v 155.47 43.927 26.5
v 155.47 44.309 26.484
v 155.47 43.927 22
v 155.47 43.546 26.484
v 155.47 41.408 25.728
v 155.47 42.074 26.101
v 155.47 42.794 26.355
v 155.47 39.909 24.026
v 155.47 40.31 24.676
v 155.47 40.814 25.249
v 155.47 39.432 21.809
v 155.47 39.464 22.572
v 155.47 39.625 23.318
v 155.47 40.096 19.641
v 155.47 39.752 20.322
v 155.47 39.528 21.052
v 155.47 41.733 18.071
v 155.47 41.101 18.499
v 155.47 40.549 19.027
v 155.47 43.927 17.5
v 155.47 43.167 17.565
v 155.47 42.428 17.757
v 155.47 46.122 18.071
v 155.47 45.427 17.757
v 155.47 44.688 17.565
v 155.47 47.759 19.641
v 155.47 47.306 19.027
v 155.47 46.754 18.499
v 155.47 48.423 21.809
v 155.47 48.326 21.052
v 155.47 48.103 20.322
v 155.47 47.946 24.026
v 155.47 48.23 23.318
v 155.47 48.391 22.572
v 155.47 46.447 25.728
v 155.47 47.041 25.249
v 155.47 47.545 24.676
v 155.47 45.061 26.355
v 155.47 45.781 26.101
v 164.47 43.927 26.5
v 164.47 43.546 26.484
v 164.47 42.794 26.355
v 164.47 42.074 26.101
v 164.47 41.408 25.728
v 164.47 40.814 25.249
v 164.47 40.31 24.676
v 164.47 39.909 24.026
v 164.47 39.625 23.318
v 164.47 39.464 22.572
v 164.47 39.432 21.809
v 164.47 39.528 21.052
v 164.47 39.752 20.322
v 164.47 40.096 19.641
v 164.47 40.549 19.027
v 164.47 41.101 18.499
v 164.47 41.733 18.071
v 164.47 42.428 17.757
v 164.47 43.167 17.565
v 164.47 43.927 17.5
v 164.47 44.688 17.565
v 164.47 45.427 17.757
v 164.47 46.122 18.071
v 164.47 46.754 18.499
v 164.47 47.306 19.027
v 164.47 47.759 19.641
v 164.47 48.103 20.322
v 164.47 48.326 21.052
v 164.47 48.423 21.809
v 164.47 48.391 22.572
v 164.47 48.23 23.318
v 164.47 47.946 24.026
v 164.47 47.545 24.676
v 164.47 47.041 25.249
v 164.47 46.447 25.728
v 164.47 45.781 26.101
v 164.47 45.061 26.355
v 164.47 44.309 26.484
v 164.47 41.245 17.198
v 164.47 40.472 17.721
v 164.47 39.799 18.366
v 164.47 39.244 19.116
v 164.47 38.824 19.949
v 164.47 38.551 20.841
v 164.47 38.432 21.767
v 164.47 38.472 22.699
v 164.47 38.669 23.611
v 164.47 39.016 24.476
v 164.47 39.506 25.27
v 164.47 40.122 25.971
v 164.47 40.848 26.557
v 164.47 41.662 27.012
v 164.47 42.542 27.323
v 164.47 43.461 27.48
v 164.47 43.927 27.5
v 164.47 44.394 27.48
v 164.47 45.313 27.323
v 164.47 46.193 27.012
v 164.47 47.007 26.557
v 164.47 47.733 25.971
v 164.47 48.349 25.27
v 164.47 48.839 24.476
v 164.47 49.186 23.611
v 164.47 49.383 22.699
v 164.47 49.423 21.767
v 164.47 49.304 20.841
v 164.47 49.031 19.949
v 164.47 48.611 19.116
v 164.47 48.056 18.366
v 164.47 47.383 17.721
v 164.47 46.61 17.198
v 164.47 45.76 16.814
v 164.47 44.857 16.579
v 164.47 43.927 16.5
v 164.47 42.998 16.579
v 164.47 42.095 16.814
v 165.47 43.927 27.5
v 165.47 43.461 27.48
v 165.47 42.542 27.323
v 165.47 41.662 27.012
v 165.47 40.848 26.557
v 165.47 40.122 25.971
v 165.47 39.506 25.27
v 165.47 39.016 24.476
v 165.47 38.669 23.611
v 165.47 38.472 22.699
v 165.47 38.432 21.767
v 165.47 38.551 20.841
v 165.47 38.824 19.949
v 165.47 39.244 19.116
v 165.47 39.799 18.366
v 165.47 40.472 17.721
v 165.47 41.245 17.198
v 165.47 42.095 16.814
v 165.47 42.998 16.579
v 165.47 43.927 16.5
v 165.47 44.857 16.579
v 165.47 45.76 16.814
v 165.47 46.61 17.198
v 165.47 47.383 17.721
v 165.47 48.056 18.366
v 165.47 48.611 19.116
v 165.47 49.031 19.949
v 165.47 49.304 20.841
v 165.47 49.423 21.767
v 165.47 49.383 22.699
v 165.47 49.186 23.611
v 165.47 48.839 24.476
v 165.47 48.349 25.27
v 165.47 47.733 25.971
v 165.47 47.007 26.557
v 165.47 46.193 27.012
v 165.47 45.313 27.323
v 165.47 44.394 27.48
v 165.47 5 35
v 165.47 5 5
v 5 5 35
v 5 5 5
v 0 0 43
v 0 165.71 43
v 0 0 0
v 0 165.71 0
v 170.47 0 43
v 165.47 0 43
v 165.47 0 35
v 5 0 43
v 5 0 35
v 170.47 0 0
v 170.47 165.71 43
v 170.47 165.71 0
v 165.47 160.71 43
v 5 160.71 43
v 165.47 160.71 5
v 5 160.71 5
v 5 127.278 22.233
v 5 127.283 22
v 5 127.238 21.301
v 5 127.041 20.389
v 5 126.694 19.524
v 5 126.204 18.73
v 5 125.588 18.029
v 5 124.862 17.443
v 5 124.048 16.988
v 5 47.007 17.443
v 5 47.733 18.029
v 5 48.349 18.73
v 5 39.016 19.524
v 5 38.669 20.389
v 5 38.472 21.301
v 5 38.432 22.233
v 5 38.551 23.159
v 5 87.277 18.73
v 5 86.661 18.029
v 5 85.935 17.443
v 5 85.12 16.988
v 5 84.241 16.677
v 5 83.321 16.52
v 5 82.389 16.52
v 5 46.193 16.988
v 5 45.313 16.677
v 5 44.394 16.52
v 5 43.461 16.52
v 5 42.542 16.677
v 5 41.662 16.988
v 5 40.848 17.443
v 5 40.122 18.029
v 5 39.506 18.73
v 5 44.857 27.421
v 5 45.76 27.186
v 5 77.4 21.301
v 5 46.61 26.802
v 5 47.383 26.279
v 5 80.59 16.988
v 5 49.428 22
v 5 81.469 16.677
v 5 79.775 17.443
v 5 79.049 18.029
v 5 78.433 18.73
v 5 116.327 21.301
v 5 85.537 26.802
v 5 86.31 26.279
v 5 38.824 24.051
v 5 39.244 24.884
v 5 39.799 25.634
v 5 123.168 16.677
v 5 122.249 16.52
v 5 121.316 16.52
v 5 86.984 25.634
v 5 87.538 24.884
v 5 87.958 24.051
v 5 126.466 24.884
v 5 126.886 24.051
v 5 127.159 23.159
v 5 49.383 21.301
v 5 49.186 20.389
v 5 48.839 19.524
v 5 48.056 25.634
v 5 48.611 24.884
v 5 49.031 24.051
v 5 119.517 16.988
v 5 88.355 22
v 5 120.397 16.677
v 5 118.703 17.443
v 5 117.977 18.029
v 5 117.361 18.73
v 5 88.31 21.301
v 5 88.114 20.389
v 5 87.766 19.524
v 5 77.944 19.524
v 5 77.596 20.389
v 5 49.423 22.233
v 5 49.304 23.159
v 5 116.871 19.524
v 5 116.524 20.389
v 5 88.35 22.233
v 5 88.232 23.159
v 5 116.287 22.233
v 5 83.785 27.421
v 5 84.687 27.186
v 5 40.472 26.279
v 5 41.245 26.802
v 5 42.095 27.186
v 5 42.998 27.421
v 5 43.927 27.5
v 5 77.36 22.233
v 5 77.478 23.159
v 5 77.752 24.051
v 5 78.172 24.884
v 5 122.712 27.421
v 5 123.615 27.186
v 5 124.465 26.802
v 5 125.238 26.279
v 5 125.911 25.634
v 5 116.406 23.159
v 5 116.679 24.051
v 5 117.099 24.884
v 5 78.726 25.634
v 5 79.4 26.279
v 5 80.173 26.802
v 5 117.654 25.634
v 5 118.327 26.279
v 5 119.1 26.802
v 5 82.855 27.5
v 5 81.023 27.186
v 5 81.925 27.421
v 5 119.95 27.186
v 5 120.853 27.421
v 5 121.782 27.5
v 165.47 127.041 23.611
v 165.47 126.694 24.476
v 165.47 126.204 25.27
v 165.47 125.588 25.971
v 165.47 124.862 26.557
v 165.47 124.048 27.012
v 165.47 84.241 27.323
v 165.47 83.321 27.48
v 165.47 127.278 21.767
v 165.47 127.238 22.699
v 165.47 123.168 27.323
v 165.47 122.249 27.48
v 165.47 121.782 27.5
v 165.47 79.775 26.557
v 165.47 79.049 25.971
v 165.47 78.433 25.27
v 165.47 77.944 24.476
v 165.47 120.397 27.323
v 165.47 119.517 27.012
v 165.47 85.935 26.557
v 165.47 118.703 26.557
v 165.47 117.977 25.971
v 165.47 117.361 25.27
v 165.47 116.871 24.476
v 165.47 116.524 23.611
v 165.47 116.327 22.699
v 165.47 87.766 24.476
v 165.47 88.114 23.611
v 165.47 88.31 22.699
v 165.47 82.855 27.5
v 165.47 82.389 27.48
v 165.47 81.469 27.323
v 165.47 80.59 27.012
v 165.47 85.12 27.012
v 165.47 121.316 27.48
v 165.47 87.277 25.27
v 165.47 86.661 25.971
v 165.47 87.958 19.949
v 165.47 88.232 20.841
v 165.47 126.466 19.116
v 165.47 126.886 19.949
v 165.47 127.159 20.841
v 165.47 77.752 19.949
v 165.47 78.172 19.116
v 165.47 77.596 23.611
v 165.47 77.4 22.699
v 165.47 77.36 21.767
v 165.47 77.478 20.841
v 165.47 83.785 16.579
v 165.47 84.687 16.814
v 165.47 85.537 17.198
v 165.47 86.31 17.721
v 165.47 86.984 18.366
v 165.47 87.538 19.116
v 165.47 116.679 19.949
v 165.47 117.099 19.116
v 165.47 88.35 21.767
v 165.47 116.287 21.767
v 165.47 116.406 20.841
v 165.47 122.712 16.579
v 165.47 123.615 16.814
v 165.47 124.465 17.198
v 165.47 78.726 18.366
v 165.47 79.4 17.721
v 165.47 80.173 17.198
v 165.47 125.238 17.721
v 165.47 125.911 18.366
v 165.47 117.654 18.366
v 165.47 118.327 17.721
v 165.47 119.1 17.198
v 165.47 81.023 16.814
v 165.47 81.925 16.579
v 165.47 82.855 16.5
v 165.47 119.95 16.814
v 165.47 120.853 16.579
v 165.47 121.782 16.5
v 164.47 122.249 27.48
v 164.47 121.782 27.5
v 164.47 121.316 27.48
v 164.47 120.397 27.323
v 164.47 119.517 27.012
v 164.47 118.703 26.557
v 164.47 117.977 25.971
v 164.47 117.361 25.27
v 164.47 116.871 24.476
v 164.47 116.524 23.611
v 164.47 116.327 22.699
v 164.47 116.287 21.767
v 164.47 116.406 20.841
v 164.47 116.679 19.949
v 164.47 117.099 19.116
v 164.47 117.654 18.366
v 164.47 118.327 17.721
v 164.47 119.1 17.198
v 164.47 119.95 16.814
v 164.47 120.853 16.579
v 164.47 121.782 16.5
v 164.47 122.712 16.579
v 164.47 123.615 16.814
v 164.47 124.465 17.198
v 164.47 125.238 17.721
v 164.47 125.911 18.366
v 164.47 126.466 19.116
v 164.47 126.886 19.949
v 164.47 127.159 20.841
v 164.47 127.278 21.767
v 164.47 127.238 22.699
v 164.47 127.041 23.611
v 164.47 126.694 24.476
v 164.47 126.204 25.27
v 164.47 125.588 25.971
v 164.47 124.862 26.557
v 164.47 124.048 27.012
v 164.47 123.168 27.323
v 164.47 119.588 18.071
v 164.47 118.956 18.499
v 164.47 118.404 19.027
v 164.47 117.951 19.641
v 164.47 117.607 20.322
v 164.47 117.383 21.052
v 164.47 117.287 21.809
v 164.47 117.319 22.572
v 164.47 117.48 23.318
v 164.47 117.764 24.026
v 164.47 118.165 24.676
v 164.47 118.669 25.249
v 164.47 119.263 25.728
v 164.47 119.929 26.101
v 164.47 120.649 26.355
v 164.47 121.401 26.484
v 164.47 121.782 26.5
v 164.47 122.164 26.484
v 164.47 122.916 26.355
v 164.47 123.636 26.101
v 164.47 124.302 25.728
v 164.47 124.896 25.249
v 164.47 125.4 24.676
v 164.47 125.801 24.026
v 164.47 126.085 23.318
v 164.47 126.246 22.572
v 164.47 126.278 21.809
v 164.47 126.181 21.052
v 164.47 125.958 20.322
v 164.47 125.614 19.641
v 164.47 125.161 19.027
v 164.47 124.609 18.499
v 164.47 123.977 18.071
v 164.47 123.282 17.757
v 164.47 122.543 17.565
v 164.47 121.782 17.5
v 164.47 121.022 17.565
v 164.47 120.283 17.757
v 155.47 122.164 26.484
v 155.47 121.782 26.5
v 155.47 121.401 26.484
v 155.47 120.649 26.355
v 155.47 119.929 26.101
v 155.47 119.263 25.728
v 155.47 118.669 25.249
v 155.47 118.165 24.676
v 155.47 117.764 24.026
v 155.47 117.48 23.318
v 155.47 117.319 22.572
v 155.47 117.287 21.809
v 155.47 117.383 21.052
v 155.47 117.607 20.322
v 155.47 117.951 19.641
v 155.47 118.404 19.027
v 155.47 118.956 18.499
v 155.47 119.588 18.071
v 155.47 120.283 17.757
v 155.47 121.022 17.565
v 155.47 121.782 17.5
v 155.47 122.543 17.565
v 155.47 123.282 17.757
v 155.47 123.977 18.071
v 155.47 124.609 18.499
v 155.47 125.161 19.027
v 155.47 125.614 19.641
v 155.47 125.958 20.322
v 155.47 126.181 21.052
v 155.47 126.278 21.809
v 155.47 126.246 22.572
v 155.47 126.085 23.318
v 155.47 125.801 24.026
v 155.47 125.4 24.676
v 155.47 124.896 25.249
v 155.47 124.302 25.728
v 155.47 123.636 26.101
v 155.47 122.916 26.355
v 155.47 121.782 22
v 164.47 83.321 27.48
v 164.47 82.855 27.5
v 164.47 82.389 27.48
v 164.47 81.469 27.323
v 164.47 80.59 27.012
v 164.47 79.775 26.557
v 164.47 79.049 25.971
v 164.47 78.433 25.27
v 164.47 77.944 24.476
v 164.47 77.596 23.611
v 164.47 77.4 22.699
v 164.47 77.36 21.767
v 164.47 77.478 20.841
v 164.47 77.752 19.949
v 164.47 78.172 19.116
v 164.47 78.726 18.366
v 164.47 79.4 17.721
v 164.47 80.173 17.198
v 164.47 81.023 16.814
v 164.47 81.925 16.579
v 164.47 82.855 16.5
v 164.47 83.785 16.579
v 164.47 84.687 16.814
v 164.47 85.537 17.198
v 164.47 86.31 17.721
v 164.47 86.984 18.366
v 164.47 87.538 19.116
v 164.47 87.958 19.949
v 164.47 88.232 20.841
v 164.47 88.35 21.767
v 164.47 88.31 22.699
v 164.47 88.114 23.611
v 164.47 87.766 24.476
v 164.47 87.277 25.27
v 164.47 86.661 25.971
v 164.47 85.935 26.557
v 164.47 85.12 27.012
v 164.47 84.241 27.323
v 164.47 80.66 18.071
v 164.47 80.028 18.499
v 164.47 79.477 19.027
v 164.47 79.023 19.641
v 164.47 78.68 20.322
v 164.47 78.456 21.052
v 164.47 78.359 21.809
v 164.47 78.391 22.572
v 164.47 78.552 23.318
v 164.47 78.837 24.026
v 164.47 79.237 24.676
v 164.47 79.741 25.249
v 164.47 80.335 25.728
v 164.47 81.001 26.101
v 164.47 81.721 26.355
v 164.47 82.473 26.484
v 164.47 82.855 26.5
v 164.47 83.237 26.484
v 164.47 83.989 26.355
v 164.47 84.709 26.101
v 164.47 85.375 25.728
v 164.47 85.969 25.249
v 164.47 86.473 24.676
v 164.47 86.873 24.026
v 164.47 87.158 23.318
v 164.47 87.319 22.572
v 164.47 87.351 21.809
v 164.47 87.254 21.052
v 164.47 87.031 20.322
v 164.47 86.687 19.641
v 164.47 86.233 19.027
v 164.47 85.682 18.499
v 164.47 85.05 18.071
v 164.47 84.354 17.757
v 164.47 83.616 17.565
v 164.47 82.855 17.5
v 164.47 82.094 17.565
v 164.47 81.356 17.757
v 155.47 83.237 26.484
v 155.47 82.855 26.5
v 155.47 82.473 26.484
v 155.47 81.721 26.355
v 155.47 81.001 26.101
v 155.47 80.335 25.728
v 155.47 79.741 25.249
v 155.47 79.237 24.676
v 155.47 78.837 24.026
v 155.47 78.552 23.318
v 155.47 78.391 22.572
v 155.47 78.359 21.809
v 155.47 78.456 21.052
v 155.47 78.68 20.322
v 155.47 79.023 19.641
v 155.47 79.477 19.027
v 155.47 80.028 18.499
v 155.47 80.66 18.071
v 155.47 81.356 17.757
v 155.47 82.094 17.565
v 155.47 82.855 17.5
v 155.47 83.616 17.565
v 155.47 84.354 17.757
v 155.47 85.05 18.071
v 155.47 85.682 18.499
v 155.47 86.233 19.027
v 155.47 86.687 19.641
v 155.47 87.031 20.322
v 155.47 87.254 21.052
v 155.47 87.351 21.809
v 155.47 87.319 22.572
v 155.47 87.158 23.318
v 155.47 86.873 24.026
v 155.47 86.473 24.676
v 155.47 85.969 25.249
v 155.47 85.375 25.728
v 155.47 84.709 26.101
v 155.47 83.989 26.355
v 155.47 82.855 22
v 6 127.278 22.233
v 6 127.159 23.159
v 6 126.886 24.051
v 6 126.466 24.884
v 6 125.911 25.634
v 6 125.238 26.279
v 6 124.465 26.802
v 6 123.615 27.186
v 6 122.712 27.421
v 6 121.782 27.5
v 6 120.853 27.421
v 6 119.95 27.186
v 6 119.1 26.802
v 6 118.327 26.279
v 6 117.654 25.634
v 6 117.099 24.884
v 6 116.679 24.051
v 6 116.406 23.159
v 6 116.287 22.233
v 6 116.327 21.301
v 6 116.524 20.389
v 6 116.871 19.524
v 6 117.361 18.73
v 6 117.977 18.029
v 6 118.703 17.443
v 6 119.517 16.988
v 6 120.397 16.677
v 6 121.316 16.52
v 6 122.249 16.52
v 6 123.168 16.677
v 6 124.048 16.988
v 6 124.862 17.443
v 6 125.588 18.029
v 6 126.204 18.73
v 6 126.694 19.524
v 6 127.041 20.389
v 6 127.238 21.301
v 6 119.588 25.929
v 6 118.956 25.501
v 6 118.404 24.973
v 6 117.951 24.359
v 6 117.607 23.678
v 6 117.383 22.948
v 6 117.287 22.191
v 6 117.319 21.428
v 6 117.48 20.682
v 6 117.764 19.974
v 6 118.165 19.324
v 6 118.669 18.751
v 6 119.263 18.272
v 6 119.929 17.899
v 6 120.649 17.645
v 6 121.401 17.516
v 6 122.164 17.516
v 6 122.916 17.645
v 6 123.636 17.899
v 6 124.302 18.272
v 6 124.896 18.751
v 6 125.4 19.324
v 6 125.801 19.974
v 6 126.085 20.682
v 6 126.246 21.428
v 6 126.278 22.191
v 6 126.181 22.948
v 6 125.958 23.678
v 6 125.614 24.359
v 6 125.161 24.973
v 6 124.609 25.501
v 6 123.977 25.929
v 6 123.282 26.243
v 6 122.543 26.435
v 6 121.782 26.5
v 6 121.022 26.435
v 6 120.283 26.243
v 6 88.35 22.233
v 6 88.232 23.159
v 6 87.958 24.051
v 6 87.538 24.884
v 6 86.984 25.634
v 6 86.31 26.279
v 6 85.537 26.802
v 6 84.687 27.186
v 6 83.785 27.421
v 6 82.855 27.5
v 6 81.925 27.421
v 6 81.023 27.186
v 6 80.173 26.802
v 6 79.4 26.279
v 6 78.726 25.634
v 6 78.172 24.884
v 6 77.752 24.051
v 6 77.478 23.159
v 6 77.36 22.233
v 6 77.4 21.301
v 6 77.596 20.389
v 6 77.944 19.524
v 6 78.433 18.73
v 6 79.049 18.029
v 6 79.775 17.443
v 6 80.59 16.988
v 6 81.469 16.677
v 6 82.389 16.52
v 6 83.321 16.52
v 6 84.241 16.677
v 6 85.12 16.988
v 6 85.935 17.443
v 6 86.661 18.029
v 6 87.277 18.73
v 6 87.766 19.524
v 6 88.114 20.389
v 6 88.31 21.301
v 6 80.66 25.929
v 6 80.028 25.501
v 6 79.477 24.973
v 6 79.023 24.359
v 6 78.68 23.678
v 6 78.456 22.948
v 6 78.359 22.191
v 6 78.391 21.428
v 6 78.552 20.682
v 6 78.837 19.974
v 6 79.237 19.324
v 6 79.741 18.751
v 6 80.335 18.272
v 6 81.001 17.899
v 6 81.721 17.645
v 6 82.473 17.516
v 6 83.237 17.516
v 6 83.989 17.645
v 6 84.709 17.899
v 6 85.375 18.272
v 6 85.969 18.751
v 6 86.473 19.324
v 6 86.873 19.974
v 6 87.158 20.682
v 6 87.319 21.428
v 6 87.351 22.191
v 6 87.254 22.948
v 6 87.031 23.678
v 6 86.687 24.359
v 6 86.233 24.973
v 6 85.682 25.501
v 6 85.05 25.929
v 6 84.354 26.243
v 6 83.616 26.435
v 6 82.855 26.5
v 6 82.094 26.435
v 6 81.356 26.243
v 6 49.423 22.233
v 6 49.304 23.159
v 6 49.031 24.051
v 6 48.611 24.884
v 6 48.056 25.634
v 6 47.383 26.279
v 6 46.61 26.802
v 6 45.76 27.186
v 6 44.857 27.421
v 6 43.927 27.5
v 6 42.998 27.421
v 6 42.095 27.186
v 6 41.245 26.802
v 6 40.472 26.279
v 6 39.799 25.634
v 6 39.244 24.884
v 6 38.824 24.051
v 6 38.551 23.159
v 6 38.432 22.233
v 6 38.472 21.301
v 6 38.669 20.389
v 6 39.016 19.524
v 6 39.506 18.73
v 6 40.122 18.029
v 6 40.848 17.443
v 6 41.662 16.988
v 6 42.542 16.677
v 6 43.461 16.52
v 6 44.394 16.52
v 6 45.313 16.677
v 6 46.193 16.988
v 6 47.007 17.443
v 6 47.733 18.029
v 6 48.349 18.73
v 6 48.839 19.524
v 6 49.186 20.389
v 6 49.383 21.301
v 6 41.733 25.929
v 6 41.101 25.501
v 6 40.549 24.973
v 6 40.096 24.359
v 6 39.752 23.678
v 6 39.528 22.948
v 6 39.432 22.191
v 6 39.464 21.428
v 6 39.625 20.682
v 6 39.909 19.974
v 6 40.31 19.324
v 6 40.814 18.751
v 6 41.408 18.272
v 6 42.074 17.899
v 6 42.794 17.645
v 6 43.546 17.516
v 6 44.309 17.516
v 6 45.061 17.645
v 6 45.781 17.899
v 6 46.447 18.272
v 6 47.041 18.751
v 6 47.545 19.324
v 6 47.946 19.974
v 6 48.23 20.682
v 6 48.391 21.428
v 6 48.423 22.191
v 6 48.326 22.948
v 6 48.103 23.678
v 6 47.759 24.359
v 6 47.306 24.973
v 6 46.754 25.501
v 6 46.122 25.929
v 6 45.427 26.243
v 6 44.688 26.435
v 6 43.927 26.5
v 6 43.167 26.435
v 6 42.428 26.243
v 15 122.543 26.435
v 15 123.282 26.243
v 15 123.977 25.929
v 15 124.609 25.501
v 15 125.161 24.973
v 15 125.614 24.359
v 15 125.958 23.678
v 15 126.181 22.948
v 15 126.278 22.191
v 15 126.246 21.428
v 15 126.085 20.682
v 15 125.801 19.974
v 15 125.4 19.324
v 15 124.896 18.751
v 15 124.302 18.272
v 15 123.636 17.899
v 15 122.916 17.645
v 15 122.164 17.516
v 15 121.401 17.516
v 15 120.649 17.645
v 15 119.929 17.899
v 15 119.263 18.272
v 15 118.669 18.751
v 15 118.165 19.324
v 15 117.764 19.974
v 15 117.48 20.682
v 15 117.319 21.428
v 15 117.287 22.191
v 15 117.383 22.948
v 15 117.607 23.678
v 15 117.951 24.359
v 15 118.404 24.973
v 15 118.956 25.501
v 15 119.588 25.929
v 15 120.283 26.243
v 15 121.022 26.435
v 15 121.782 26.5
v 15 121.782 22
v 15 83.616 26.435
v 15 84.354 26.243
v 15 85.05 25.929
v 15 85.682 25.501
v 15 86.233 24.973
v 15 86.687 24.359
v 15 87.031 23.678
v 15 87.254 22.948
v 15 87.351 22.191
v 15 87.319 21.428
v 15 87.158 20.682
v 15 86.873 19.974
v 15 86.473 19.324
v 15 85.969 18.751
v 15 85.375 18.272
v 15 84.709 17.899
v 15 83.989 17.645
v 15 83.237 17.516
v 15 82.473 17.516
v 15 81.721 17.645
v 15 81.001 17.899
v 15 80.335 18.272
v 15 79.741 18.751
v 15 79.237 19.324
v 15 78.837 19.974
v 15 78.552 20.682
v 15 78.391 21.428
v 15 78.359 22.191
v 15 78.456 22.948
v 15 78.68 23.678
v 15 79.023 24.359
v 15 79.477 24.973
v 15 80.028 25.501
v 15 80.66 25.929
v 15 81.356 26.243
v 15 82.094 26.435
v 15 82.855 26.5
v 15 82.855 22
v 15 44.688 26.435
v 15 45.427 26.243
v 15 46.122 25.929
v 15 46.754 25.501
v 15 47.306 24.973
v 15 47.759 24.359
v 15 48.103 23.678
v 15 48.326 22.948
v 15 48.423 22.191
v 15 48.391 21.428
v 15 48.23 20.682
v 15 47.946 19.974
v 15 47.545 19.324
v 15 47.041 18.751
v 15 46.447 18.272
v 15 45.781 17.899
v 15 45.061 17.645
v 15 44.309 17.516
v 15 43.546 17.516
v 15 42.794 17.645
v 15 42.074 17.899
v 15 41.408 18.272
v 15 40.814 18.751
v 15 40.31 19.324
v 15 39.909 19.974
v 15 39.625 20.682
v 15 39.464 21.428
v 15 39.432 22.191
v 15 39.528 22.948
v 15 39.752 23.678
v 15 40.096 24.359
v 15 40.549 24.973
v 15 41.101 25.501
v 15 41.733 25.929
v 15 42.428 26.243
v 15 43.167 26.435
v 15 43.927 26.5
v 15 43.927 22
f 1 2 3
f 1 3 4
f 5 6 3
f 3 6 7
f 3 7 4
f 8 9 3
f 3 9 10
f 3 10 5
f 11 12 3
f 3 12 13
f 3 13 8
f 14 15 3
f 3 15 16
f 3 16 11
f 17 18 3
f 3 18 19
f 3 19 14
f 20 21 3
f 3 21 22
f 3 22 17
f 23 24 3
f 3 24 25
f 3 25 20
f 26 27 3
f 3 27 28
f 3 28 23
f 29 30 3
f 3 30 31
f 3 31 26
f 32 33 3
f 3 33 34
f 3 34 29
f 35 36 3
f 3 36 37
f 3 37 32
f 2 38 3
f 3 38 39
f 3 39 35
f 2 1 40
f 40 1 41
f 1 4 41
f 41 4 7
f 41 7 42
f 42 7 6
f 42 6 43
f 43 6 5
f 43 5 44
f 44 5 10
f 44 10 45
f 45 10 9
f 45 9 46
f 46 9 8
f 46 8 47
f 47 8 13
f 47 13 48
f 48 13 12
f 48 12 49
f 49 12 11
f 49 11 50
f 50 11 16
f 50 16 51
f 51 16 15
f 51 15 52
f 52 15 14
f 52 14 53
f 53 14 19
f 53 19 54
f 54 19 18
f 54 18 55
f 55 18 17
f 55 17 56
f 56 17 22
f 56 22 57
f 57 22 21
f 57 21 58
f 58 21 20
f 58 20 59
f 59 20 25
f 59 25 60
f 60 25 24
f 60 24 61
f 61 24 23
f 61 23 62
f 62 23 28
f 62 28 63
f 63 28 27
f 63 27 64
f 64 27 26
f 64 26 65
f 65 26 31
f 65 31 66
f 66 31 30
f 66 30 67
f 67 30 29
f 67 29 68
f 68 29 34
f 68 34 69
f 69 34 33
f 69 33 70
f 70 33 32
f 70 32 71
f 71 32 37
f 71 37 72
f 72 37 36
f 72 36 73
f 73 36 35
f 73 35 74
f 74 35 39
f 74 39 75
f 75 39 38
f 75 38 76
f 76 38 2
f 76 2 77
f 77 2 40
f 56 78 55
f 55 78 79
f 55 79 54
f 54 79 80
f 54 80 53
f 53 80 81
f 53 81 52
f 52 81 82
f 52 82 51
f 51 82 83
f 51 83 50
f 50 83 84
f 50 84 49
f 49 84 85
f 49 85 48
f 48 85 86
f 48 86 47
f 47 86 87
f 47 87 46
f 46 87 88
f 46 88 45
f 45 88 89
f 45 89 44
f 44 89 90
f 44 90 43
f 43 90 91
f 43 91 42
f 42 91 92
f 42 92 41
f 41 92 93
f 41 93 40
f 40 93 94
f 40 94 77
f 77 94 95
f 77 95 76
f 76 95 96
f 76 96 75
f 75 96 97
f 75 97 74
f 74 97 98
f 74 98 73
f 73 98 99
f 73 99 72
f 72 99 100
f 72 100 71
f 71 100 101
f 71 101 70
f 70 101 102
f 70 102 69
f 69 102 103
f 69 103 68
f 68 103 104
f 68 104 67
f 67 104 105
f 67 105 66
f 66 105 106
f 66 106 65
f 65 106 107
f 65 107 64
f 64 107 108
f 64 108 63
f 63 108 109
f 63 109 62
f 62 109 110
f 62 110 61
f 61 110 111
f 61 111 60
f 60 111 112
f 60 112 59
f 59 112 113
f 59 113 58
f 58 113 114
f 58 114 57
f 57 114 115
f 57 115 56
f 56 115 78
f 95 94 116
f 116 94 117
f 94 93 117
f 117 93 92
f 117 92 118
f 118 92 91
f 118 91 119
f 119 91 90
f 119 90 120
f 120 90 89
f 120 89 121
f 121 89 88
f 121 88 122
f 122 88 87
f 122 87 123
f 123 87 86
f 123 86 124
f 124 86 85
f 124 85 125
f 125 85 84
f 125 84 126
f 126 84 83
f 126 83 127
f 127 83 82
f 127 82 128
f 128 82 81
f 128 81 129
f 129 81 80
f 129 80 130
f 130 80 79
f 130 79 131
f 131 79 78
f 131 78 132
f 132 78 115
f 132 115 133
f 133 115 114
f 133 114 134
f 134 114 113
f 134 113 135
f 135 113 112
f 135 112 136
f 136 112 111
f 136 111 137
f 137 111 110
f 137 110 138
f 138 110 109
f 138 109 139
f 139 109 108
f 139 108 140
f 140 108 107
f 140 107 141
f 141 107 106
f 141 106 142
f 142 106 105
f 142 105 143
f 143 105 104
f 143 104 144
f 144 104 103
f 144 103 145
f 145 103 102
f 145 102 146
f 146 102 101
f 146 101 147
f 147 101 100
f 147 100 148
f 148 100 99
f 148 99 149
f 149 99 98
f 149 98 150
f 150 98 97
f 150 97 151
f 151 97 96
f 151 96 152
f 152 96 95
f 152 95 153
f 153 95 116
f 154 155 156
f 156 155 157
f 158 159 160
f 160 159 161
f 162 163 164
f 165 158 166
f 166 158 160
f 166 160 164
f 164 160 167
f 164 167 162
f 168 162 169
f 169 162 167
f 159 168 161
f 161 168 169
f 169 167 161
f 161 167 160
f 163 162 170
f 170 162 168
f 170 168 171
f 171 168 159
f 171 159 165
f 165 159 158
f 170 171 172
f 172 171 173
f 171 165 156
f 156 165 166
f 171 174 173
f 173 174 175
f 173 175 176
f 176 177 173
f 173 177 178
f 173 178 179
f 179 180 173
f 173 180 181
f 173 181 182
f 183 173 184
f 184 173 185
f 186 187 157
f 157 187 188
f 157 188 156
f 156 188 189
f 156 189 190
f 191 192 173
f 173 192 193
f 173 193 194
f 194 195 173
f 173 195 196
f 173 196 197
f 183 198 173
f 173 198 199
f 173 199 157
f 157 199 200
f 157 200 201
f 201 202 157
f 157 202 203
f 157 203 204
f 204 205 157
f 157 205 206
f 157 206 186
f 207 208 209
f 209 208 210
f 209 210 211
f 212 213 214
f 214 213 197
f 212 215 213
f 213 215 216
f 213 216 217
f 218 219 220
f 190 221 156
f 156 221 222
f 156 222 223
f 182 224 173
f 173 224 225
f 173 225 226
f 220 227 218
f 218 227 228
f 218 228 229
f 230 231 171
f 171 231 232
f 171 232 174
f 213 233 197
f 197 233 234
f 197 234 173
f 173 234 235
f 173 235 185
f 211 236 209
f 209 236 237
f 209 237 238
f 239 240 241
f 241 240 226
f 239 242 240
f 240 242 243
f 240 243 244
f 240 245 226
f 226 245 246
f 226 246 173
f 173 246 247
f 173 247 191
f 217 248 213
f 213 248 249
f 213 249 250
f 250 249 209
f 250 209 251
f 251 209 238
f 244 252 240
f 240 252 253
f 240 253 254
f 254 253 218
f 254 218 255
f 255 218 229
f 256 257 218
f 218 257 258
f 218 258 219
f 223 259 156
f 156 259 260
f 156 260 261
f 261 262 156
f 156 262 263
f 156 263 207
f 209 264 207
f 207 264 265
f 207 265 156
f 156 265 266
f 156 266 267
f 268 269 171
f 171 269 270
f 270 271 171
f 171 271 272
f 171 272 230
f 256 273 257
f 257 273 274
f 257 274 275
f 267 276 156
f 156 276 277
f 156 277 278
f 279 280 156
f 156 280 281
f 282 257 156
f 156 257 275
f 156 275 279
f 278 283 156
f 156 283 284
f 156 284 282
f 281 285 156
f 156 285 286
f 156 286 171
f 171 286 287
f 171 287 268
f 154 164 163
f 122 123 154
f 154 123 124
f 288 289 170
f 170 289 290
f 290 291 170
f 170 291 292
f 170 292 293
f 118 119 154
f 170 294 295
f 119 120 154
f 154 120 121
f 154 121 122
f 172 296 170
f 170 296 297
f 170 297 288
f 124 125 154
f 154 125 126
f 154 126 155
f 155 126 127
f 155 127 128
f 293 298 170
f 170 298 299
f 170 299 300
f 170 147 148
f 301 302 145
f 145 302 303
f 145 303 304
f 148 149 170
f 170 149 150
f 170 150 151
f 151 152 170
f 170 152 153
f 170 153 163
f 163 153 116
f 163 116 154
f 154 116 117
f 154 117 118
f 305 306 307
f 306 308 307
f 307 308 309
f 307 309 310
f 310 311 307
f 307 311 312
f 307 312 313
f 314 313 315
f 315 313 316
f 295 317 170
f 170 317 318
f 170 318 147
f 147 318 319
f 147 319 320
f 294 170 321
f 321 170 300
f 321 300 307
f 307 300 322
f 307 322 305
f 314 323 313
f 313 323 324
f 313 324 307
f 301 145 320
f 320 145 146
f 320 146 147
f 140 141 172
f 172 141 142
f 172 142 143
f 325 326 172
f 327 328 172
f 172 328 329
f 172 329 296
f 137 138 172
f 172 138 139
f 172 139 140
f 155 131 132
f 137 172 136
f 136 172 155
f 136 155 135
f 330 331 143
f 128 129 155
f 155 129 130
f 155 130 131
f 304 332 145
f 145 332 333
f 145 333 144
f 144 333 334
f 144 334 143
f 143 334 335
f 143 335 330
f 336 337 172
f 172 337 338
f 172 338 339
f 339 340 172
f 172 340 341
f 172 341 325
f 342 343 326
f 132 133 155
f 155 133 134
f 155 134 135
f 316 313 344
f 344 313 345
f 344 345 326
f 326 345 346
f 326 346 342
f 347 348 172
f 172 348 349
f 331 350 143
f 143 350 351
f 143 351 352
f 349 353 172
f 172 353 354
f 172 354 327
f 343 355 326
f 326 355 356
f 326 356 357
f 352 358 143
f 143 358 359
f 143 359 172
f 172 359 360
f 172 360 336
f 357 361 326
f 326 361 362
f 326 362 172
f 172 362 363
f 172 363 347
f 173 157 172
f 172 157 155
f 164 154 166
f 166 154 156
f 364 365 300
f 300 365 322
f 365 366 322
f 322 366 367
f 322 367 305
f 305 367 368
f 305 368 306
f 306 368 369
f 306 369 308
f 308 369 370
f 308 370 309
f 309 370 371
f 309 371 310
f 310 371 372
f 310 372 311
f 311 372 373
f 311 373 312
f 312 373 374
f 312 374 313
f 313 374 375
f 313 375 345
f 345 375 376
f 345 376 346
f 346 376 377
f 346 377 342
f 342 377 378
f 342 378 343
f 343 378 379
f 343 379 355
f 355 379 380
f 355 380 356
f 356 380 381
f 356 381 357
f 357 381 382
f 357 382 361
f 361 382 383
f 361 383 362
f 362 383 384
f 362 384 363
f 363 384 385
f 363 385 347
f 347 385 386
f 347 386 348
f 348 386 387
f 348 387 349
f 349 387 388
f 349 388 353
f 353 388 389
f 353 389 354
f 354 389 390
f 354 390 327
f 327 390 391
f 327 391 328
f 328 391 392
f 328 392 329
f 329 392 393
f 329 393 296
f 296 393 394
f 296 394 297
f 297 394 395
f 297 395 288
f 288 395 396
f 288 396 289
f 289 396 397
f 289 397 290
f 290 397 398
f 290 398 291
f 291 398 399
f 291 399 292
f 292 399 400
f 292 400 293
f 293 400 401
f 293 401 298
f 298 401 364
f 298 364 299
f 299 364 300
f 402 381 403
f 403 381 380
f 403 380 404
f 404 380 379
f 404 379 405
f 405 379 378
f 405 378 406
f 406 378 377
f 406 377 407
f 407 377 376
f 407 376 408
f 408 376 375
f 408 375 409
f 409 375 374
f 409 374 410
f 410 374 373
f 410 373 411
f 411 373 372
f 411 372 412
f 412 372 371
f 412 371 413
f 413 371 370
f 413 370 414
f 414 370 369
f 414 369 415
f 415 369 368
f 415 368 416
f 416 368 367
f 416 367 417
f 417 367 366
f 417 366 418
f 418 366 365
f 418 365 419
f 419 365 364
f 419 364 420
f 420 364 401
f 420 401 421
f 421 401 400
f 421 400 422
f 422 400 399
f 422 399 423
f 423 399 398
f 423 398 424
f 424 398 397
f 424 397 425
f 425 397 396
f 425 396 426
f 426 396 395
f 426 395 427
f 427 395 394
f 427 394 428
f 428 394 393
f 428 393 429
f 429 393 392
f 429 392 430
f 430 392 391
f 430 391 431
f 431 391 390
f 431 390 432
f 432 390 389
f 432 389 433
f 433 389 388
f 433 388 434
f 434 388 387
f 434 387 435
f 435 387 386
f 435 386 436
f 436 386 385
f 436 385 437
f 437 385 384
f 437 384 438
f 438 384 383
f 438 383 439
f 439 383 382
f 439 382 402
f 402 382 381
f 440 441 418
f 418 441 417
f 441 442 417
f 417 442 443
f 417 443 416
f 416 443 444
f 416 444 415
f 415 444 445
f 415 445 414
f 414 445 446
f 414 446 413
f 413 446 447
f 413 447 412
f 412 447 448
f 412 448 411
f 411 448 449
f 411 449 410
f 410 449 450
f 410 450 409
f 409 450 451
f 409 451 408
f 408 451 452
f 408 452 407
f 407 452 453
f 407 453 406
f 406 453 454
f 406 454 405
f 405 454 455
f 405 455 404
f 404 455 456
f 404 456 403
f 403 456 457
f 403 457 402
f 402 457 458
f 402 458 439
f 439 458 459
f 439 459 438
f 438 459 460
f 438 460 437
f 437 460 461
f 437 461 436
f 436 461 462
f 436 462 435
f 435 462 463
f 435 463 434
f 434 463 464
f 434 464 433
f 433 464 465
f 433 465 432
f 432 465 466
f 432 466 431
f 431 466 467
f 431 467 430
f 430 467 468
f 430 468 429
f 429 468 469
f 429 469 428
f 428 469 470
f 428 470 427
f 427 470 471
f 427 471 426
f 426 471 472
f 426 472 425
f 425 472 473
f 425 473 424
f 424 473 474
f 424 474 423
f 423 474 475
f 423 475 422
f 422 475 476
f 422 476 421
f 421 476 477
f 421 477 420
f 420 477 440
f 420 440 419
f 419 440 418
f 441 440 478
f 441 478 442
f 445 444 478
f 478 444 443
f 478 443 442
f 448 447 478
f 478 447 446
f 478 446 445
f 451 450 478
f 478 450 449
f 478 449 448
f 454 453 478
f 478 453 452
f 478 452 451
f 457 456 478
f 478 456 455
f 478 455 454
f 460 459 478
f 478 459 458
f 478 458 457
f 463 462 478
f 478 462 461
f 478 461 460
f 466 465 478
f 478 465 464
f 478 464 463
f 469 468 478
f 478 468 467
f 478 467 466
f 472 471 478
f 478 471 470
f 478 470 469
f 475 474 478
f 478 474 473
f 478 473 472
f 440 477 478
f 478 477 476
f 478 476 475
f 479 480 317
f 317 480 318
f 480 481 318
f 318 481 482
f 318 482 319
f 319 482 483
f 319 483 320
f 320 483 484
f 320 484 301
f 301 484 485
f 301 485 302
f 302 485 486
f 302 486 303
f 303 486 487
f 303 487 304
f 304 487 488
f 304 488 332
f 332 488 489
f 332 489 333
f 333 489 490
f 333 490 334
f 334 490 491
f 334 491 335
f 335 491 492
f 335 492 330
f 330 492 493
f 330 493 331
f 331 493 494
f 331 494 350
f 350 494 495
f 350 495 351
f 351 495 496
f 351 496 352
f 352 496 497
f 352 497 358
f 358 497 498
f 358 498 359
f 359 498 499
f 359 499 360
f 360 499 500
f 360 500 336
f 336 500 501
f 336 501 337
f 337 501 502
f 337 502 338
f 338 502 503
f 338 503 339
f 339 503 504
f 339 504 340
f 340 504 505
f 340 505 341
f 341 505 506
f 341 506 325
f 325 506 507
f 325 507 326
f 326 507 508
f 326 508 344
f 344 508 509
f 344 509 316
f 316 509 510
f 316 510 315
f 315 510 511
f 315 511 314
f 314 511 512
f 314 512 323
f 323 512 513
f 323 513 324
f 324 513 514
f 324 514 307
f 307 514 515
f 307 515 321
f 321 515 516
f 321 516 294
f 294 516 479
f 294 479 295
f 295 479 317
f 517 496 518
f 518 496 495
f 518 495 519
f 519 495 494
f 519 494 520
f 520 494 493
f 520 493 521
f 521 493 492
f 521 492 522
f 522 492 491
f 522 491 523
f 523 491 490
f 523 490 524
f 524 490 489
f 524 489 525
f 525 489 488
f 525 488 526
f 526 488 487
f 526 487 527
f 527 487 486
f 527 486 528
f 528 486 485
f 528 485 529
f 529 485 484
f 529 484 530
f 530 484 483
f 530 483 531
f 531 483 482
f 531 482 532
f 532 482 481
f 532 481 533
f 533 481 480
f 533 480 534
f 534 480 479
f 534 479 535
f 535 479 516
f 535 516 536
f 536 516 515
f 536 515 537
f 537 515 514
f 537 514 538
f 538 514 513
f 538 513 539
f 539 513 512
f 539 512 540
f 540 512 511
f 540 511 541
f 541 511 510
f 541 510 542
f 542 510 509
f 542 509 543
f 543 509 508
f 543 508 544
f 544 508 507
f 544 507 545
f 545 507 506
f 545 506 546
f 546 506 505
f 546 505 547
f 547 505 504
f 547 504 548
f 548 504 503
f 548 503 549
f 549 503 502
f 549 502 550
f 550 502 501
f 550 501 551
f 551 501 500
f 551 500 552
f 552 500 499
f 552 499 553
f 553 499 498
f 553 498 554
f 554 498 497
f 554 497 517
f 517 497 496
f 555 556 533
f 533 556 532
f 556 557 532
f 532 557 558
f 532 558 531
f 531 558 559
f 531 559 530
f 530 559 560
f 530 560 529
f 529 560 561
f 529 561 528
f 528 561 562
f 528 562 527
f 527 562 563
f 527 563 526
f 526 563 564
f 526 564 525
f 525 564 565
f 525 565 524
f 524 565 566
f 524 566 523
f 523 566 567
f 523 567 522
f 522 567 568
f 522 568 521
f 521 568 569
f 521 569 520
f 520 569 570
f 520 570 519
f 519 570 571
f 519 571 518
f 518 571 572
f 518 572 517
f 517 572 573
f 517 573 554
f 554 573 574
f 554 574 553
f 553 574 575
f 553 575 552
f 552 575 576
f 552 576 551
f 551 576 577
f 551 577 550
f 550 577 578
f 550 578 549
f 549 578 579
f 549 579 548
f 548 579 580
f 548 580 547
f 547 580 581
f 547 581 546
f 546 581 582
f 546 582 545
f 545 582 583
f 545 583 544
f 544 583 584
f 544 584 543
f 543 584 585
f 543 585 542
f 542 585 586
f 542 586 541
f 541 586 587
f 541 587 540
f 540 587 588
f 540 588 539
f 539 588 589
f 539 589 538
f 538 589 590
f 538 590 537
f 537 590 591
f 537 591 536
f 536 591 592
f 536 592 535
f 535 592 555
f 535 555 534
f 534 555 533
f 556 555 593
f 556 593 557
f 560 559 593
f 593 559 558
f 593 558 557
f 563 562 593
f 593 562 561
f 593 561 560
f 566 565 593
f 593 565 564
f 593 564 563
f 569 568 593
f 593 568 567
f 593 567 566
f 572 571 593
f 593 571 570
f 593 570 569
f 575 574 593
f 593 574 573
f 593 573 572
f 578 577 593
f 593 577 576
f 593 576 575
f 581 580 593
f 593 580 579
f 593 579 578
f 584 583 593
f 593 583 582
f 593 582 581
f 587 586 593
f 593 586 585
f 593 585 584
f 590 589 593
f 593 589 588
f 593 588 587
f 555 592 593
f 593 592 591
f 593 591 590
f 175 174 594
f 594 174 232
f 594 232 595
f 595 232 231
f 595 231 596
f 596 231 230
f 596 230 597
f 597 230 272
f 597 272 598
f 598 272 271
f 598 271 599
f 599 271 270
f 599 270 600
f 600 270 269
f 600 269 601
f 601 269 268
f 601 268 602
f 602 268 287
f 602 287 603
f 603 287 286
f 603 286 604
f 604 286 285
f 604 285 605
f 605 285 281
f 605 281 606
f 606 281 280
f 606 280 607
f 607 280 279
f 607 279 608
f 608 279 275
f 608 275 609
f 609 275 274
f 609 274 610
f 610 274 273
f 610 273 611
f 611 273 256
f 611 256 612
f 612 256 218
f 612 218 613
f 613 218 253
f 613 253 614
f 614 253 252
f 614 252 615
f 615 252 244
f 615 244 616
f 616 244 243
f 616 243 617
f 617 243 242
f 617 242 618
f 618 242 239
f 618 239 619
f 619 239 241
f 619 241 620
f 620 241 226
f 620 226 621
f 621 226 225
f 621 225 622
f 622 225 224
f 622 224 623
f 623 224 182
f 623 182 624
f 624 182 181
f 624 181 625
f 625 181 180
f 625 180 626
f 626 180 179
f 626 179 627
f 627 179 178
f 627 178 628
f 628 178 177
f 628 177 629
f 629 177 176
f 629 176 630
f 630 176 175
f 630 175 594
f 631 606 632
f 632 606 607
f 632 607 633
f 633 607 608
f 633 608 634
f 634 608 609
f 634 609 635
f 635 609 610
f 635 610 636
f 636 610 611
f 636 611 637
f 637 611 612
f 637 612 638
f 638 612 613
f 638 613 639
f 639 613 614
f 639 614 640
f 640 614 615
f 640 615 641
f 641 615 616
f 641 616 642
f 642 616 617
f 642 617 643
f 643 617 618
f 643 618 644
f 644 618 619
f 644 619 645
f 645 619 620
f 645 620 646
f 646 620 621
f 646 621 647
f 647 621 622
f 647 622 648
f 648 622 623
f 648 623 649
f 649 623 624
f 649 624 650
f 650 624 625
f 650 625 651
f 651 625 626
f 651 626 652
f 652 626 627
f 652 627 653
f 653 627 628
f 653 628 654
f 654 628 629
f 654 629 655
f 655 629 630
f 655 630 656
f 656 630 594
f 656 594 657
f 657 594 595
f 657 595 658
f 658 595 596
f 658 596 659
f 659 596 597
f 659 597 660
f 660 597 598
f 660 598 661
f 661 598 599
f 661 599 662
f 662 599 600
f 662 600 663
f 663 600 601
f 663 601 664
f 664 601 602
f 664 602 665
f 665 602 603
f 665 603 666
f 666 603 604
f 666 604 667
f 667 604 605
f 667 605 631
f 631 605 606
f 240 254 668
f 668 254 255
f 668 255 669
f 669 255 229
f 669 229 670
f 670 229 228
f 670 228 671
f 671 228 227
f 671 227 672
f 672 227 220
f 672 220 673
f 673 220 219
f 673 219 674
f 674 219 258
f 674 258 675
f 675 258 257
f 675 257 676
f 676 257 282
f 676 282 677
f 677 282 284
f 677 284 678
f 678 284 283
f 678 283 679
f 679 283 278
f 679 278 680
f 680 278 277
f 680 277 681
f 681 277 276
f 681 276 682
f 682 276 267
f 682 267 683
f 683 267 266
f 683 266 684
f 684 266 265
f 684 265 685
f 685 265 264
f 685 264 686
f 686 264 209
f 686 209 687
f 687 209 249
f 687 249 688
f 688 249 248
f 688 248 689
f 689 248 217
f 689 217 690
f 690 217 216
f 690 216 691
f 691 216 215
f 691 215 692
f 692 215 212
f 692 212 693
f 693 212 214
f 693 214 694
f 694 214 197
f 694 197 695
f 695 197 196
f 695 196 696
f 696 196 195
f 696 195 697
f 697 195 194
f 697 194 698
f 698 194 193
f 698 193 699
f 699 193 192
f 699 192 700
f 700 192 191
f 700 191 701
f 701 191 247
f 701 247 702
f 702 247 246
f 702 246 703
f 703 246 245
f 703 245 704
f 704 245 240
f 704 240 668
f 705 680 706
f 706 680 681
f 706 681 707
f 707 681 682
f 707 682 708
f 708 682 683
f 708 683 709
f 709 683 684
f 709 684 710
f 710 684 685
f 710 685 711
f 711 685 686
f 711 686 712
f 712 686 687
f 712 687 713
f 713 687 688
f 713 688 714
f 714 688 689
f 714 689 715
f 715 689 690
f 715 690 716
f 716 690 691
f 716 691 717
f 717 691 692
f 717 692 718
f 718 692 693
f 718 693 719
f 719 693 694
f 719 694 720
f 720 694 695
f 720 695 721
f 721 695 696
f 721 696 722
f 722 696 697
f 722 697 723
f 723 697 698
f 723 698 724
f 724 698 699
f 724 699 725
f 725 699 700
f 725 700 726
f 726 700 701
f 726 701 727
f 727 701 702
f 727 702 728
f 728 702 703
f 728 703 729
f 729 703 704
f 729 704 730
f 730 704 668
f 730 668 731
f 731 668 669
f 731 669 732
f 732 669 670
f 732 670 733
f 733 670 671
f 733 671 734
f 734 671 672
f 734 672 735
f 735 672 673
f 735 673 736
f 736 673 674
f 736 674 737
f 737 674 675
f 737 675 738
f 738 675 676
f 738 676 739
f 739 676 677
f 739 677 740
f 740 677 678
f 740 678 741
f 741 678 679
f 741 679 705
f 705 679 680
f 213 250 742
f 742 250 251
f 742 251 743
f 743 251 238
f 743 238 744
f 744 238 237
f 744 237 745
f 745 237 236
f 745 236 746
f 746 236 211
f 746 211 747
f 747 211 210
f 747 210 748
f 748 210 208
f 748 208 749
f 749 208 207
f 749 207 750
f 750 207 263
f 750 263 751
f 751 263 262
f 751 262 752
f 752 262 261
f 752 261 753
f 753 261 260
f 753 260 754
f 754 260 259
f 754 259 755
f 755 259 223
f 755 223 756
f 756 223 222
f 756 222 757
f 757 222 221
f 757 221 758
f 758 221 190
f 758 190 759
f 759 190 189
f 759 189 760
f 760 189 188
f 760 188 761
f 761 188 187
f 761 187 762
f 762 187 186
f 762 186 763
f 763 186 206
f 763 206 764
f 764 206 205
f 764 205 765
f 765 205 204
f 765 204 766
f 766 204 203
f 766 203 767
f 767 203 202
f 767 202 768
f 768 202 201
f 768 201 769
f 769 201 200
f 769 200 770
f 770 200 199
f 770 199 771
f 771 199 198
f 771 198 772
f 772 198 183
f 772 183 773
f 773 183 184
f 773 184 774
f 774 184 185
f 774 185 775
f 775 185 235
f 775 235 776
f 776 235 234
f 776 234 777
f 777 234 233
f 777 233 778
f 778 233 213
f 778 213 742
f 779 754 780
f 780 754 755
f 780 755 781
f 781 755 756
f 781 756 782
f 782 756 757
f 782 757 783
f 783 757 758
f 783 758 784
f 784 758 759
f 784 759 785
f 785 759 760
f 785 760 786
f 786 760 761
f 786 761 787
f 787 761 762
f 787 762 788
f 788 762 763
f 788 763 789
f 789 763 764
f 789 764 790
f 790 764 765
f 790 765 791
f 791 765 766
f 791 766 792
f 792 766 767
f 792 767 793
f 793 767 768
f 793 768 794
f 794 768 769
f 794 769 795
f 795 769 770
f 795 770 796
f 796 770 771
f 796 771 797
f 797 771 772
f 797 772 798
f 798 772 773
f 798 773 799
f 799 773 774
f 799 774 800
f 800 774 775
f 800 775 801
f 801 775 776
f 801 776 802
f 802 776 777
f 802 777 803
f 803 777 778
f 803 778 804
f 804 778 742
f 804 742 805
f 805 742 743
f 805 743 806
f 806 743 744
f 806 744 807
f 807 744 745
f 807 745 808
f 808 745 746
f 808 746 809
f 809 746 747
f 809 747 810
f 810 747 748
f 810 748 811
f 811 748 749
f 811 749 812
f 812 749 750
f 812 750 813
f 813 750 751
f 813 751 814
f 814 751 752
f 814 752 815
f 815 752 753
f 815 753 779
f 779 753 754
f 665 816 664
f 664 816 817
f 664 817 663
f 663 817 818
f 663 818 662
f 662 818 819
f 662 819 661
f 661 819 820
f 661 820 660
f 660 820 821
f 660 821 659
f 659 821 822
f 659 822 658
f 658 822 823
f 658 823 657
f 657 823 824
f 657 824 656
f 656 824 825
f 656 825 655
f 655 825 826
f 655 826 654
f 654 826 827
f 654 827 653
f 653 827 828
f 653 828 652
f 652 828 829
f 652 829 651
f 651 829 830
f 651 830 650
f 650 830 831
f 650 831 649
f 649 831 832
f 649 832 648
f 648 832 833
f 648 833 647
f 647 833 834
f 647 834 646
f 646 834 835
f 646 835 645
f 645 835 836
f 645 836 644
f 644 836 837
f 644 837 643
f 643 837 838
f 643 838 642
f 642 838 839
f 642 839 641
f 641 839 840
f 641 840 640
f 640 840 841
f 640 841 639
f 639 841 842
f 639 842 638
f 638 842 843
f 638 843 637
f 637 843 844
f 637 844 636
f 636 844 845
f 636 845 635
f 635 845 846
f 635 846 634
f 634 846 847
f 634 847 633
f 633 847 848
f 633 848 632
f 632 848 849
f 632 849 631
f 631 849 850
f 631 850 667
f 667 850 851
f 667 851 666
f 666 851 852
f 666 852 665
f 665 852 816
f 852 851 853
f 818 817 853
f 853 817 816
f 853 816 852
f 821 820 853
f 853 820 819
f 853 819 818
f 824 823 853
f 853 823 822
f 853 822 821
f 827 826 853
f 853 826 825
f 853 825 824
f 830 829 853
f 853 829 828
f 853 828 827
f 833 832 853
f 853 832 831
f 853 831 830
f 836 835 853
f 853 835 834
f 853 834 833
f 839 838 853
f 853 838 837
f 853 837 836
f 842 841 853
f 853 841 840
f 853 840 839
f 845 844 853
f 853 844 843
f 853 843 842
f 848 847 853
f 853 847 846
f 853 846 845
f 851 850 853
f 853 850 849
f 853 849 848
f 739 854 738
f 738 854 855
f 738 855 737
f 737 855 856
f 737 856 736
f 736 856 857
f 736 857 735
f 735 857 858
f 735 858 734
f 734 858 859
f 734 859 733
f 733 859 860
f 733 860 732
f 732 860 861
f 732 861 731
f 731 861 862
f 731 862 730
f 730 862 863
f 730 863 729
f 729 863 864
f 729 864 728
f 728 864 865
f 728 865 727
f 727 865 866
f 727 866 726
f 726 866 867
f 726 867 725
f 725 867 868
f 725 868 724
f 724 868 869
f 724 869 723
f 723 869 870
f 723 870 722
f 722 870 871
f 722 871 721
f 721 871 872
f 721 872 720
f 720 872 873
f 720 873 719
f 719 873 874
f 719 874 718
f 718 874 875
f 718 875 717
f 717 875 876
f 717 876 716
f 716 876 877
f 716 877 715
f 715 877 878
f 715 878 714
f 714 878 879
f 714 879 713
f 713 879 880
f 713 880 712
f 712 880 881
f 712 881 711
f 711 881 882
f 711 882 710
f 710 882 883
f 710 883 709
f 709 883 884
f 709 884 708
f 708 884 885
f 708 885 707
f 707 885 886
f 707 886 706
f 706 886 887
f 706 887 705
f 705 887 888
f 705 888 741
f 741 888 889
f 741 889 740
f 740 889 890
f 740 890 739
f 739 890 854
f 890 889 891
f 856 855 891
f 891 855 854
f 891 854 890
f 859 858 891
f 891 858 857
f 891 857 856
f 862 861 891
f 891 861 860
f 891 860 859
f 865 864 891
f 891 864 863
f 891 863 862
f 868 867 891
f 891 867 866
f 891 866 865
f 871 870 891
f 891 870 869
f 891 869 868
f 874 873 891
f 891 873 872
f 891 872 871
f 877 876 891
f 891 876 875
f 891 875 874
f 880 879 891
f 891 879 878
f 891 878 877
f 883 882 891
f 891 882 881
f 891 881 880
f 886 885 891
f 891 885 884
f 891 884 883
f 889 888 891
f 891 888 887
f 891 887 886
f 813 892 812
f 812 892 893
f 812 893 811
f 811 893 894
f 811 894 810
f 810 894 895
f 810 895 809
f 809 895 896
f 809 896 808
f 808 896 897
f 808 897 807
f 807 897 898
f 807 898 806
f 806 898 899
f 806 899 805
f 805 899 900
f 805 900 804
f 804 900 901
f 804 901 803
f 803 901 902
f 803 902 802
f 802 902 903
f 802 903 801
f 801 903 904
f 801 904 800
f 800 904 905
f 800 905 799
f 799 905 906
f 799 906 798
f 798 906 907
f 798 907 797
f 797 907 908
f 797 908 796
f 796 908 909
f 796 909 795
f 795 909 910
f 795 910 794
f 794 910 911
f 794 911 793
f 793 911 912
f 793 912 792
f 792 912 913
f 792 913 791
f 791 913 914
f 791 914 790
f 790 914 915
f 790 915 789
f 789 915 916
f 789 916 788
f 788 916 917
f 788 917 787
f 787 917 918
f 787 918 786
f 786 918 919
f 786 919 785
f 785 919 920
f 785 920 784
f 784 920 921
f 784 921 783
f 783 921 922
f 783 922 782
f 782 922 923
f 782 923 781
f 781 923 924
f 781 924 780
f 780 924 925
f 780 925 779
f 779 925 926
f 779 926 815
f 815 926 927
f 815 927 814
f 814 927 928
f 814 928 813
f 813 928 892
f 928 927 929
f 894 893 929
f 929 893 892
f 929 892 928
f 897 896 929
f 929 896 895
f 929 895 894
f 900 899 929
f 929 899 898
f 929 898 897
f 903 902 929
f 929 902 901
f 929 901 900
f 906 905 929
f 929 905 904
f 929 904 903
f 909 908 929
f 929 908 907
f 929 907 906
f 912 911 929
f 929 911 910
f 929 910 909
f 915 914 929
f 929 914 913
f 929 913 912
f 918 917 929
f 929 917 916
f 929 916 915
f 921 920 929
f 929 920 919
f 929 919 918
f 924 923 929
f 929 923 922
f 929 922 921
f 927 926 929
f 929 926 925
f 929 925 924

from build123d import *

# Parameters (mm, degrees)
SKETCH1_W               = 170.47
SKETCH1_H               = 165.71
BOSS_EXTRUDE1_DEPTH     = 5
SKETCH2_W               = 170.47
SKETCH2_H               = 165.71
SKETCH2_W_2             = 160.47
SKETCH2_H_2             = 155.71
BOSS_EXTRUDE2_DEPTH     = 38
SKETCH3_W               = 160.47
SKETCH3_H               = 5
CUT_EXTRUDE1_DEPTH      = 8
SKETCH5_R               = 5.5
BOSS_EXTRUDE3_DEPTH     = 1
SKETCH6_R               = 4.5
BOSS_EXTRUDE4_DEPTH     = 9
LPATTERN1_COUNT         = 3
LPATTERN1_PITCH         = 38.9275
MIRROR1_COPY_1_SKETCH_R = 5.5
MIRROR1_COPY_1_DEPTH    = 1
MIRROR1_COPY_2_SKETCH_R = 5.5
MIRROR1_COPY_2_DEPTH    = 1
MIRROR1_COPY_3_SKETCH_R = 4.5
MIRROR1_COPY_3_DEPTH    = 9
MIRROR1_COPY_4_SKETCH_R = 4.5
MIRROR1_COPY_4_DEPTH    = 9


with BuildPart() as part:
    # Sketch1 → Boss-Extrude1 (new body)
    with BuildSketch(Plane.XY):
        with Locations((85.235, 82.855)):
            Rectangle(SKETCH1_W, SKETCH1_H)
    extrude(amount=BOSS_EXTRUDE1_DEPTH)

    # Sketch2 → Boss-Extrude2 (add)
    with BuildSketch(Plane.XY.offset(5)):
        with Locations((85.235, 82.855)):
            Rectangle(SKETCH2_W, SKETCH2_H)
        with Locations((85.235, 82.855)):
            Rectangle(SKETCH2_W_2, SKETCH2_H_2, mode=Mode.SUBTRACT)
    extrude(amount=BOSS_EXTRUDE2_DEPTH)

    # Sketch3 → Cut-Extrude1 (cut)
    with BuildSketch(Plane.XY.offset(43)):
        with Locations((85.235, 2.5)):
            Rectangle(SKETCH3_W, SKETCH3_H)
    extrude(amount=-CUT_EXTRUDE1_DEPTH, mode=Mode.SUBTRACT)

    # Sketch5 → Boss-Extrude3 (add)
    with BuildSketch(Plane.ZY.offset(-165.47)):
        with Locations((22, 121.7825)):
            Circle(SKETCH5_R)
    boss_extrude3 = extrude(amount=BOSS_EXTRUDE3_DEPTH)

    # Sketch6 → Boss-Extrude4 (add)
    with BuildSketch(Plane.ZY.offset(-164.47)):
        with Locations((22, 121.7825)):
            Circle(SKETCH6_R)
    boss_extrude4 = extrude(amount=BOSS_EXTRUDE4_DEPTH)

    # LPattern1: Boss-Extrude3, Boss-Extrude4 ×3
    with Locations(*[(0, -i * LPATTERN1_PITCH, 0) for i in range(1, LPATTERN1_COUNT)]):
        add(boss_extrude3)
        add(boss_extrude4)

    # Mirror1: Boss-Extrude3, Boss-Extrude4 across plane
    add(boss_extrude3.mirror(Plane.ZY.offset(-85.235)))
    add(boss_extrude4.mirror(Plane.ZY.offset(-85.235)))

    # Mirror1 copy 1 sketch → Mirror1 copy 1 (add)
    with BuildSketch(Plane(origin=(5, -38.9275, 0), x_dir=(0, 0, 1), z_dir=(1, 0, 0))):
        with Locations((22, -121.7825)):
            Circle(MIRROR1_COPY_1_SKETCH_R)
    extrude(amount=MIRROR1_COPY_1_DEPTH)

    # Mirror1 copy 2 sketch → Mirror1 copy 2 (add)
    with BuildSketch(Plane(origin=(5, -77.855, 0), x_dir=(0, 0, 1), z_dir=(1, 0, 0))):
        with Locations((22, -121.7825)):
            Circle(MIRROR1_COPY_2_SKETCH_R)
    extrude(amount=MIRROR1_COPY_2_DEPTH)

    # Mirror1 copy 3 sketch → Mirror1 copy 3 (add)
    with BuildSketch(Plane(origin=(6, -38.9275, 0), x_dir=(0, 0, 1), z_dir=(1, 0, 0))):
        with Locations((22, -121.7825)):
            Circle(MIRROR1_COPY_3_SKETCH_R)
    extrude(amount=MIRROR1_COPY_3_DEPTH)

    # Mirror1 copy 4 sketch → Mirror1 copy 4 (add)
    with BuildSketch(Plane(origin=(6, -77.855, 0), x_dir=(0, 0, 1), z_dir=(1, 0, 0))):
        with Locations((22, -121.7825)):
            Circle(MIRROR1_COPY_4_SKETCH_R)
    extrude(amount=MIRROR1_COPY_4_DEPTH)


solid = part.part
